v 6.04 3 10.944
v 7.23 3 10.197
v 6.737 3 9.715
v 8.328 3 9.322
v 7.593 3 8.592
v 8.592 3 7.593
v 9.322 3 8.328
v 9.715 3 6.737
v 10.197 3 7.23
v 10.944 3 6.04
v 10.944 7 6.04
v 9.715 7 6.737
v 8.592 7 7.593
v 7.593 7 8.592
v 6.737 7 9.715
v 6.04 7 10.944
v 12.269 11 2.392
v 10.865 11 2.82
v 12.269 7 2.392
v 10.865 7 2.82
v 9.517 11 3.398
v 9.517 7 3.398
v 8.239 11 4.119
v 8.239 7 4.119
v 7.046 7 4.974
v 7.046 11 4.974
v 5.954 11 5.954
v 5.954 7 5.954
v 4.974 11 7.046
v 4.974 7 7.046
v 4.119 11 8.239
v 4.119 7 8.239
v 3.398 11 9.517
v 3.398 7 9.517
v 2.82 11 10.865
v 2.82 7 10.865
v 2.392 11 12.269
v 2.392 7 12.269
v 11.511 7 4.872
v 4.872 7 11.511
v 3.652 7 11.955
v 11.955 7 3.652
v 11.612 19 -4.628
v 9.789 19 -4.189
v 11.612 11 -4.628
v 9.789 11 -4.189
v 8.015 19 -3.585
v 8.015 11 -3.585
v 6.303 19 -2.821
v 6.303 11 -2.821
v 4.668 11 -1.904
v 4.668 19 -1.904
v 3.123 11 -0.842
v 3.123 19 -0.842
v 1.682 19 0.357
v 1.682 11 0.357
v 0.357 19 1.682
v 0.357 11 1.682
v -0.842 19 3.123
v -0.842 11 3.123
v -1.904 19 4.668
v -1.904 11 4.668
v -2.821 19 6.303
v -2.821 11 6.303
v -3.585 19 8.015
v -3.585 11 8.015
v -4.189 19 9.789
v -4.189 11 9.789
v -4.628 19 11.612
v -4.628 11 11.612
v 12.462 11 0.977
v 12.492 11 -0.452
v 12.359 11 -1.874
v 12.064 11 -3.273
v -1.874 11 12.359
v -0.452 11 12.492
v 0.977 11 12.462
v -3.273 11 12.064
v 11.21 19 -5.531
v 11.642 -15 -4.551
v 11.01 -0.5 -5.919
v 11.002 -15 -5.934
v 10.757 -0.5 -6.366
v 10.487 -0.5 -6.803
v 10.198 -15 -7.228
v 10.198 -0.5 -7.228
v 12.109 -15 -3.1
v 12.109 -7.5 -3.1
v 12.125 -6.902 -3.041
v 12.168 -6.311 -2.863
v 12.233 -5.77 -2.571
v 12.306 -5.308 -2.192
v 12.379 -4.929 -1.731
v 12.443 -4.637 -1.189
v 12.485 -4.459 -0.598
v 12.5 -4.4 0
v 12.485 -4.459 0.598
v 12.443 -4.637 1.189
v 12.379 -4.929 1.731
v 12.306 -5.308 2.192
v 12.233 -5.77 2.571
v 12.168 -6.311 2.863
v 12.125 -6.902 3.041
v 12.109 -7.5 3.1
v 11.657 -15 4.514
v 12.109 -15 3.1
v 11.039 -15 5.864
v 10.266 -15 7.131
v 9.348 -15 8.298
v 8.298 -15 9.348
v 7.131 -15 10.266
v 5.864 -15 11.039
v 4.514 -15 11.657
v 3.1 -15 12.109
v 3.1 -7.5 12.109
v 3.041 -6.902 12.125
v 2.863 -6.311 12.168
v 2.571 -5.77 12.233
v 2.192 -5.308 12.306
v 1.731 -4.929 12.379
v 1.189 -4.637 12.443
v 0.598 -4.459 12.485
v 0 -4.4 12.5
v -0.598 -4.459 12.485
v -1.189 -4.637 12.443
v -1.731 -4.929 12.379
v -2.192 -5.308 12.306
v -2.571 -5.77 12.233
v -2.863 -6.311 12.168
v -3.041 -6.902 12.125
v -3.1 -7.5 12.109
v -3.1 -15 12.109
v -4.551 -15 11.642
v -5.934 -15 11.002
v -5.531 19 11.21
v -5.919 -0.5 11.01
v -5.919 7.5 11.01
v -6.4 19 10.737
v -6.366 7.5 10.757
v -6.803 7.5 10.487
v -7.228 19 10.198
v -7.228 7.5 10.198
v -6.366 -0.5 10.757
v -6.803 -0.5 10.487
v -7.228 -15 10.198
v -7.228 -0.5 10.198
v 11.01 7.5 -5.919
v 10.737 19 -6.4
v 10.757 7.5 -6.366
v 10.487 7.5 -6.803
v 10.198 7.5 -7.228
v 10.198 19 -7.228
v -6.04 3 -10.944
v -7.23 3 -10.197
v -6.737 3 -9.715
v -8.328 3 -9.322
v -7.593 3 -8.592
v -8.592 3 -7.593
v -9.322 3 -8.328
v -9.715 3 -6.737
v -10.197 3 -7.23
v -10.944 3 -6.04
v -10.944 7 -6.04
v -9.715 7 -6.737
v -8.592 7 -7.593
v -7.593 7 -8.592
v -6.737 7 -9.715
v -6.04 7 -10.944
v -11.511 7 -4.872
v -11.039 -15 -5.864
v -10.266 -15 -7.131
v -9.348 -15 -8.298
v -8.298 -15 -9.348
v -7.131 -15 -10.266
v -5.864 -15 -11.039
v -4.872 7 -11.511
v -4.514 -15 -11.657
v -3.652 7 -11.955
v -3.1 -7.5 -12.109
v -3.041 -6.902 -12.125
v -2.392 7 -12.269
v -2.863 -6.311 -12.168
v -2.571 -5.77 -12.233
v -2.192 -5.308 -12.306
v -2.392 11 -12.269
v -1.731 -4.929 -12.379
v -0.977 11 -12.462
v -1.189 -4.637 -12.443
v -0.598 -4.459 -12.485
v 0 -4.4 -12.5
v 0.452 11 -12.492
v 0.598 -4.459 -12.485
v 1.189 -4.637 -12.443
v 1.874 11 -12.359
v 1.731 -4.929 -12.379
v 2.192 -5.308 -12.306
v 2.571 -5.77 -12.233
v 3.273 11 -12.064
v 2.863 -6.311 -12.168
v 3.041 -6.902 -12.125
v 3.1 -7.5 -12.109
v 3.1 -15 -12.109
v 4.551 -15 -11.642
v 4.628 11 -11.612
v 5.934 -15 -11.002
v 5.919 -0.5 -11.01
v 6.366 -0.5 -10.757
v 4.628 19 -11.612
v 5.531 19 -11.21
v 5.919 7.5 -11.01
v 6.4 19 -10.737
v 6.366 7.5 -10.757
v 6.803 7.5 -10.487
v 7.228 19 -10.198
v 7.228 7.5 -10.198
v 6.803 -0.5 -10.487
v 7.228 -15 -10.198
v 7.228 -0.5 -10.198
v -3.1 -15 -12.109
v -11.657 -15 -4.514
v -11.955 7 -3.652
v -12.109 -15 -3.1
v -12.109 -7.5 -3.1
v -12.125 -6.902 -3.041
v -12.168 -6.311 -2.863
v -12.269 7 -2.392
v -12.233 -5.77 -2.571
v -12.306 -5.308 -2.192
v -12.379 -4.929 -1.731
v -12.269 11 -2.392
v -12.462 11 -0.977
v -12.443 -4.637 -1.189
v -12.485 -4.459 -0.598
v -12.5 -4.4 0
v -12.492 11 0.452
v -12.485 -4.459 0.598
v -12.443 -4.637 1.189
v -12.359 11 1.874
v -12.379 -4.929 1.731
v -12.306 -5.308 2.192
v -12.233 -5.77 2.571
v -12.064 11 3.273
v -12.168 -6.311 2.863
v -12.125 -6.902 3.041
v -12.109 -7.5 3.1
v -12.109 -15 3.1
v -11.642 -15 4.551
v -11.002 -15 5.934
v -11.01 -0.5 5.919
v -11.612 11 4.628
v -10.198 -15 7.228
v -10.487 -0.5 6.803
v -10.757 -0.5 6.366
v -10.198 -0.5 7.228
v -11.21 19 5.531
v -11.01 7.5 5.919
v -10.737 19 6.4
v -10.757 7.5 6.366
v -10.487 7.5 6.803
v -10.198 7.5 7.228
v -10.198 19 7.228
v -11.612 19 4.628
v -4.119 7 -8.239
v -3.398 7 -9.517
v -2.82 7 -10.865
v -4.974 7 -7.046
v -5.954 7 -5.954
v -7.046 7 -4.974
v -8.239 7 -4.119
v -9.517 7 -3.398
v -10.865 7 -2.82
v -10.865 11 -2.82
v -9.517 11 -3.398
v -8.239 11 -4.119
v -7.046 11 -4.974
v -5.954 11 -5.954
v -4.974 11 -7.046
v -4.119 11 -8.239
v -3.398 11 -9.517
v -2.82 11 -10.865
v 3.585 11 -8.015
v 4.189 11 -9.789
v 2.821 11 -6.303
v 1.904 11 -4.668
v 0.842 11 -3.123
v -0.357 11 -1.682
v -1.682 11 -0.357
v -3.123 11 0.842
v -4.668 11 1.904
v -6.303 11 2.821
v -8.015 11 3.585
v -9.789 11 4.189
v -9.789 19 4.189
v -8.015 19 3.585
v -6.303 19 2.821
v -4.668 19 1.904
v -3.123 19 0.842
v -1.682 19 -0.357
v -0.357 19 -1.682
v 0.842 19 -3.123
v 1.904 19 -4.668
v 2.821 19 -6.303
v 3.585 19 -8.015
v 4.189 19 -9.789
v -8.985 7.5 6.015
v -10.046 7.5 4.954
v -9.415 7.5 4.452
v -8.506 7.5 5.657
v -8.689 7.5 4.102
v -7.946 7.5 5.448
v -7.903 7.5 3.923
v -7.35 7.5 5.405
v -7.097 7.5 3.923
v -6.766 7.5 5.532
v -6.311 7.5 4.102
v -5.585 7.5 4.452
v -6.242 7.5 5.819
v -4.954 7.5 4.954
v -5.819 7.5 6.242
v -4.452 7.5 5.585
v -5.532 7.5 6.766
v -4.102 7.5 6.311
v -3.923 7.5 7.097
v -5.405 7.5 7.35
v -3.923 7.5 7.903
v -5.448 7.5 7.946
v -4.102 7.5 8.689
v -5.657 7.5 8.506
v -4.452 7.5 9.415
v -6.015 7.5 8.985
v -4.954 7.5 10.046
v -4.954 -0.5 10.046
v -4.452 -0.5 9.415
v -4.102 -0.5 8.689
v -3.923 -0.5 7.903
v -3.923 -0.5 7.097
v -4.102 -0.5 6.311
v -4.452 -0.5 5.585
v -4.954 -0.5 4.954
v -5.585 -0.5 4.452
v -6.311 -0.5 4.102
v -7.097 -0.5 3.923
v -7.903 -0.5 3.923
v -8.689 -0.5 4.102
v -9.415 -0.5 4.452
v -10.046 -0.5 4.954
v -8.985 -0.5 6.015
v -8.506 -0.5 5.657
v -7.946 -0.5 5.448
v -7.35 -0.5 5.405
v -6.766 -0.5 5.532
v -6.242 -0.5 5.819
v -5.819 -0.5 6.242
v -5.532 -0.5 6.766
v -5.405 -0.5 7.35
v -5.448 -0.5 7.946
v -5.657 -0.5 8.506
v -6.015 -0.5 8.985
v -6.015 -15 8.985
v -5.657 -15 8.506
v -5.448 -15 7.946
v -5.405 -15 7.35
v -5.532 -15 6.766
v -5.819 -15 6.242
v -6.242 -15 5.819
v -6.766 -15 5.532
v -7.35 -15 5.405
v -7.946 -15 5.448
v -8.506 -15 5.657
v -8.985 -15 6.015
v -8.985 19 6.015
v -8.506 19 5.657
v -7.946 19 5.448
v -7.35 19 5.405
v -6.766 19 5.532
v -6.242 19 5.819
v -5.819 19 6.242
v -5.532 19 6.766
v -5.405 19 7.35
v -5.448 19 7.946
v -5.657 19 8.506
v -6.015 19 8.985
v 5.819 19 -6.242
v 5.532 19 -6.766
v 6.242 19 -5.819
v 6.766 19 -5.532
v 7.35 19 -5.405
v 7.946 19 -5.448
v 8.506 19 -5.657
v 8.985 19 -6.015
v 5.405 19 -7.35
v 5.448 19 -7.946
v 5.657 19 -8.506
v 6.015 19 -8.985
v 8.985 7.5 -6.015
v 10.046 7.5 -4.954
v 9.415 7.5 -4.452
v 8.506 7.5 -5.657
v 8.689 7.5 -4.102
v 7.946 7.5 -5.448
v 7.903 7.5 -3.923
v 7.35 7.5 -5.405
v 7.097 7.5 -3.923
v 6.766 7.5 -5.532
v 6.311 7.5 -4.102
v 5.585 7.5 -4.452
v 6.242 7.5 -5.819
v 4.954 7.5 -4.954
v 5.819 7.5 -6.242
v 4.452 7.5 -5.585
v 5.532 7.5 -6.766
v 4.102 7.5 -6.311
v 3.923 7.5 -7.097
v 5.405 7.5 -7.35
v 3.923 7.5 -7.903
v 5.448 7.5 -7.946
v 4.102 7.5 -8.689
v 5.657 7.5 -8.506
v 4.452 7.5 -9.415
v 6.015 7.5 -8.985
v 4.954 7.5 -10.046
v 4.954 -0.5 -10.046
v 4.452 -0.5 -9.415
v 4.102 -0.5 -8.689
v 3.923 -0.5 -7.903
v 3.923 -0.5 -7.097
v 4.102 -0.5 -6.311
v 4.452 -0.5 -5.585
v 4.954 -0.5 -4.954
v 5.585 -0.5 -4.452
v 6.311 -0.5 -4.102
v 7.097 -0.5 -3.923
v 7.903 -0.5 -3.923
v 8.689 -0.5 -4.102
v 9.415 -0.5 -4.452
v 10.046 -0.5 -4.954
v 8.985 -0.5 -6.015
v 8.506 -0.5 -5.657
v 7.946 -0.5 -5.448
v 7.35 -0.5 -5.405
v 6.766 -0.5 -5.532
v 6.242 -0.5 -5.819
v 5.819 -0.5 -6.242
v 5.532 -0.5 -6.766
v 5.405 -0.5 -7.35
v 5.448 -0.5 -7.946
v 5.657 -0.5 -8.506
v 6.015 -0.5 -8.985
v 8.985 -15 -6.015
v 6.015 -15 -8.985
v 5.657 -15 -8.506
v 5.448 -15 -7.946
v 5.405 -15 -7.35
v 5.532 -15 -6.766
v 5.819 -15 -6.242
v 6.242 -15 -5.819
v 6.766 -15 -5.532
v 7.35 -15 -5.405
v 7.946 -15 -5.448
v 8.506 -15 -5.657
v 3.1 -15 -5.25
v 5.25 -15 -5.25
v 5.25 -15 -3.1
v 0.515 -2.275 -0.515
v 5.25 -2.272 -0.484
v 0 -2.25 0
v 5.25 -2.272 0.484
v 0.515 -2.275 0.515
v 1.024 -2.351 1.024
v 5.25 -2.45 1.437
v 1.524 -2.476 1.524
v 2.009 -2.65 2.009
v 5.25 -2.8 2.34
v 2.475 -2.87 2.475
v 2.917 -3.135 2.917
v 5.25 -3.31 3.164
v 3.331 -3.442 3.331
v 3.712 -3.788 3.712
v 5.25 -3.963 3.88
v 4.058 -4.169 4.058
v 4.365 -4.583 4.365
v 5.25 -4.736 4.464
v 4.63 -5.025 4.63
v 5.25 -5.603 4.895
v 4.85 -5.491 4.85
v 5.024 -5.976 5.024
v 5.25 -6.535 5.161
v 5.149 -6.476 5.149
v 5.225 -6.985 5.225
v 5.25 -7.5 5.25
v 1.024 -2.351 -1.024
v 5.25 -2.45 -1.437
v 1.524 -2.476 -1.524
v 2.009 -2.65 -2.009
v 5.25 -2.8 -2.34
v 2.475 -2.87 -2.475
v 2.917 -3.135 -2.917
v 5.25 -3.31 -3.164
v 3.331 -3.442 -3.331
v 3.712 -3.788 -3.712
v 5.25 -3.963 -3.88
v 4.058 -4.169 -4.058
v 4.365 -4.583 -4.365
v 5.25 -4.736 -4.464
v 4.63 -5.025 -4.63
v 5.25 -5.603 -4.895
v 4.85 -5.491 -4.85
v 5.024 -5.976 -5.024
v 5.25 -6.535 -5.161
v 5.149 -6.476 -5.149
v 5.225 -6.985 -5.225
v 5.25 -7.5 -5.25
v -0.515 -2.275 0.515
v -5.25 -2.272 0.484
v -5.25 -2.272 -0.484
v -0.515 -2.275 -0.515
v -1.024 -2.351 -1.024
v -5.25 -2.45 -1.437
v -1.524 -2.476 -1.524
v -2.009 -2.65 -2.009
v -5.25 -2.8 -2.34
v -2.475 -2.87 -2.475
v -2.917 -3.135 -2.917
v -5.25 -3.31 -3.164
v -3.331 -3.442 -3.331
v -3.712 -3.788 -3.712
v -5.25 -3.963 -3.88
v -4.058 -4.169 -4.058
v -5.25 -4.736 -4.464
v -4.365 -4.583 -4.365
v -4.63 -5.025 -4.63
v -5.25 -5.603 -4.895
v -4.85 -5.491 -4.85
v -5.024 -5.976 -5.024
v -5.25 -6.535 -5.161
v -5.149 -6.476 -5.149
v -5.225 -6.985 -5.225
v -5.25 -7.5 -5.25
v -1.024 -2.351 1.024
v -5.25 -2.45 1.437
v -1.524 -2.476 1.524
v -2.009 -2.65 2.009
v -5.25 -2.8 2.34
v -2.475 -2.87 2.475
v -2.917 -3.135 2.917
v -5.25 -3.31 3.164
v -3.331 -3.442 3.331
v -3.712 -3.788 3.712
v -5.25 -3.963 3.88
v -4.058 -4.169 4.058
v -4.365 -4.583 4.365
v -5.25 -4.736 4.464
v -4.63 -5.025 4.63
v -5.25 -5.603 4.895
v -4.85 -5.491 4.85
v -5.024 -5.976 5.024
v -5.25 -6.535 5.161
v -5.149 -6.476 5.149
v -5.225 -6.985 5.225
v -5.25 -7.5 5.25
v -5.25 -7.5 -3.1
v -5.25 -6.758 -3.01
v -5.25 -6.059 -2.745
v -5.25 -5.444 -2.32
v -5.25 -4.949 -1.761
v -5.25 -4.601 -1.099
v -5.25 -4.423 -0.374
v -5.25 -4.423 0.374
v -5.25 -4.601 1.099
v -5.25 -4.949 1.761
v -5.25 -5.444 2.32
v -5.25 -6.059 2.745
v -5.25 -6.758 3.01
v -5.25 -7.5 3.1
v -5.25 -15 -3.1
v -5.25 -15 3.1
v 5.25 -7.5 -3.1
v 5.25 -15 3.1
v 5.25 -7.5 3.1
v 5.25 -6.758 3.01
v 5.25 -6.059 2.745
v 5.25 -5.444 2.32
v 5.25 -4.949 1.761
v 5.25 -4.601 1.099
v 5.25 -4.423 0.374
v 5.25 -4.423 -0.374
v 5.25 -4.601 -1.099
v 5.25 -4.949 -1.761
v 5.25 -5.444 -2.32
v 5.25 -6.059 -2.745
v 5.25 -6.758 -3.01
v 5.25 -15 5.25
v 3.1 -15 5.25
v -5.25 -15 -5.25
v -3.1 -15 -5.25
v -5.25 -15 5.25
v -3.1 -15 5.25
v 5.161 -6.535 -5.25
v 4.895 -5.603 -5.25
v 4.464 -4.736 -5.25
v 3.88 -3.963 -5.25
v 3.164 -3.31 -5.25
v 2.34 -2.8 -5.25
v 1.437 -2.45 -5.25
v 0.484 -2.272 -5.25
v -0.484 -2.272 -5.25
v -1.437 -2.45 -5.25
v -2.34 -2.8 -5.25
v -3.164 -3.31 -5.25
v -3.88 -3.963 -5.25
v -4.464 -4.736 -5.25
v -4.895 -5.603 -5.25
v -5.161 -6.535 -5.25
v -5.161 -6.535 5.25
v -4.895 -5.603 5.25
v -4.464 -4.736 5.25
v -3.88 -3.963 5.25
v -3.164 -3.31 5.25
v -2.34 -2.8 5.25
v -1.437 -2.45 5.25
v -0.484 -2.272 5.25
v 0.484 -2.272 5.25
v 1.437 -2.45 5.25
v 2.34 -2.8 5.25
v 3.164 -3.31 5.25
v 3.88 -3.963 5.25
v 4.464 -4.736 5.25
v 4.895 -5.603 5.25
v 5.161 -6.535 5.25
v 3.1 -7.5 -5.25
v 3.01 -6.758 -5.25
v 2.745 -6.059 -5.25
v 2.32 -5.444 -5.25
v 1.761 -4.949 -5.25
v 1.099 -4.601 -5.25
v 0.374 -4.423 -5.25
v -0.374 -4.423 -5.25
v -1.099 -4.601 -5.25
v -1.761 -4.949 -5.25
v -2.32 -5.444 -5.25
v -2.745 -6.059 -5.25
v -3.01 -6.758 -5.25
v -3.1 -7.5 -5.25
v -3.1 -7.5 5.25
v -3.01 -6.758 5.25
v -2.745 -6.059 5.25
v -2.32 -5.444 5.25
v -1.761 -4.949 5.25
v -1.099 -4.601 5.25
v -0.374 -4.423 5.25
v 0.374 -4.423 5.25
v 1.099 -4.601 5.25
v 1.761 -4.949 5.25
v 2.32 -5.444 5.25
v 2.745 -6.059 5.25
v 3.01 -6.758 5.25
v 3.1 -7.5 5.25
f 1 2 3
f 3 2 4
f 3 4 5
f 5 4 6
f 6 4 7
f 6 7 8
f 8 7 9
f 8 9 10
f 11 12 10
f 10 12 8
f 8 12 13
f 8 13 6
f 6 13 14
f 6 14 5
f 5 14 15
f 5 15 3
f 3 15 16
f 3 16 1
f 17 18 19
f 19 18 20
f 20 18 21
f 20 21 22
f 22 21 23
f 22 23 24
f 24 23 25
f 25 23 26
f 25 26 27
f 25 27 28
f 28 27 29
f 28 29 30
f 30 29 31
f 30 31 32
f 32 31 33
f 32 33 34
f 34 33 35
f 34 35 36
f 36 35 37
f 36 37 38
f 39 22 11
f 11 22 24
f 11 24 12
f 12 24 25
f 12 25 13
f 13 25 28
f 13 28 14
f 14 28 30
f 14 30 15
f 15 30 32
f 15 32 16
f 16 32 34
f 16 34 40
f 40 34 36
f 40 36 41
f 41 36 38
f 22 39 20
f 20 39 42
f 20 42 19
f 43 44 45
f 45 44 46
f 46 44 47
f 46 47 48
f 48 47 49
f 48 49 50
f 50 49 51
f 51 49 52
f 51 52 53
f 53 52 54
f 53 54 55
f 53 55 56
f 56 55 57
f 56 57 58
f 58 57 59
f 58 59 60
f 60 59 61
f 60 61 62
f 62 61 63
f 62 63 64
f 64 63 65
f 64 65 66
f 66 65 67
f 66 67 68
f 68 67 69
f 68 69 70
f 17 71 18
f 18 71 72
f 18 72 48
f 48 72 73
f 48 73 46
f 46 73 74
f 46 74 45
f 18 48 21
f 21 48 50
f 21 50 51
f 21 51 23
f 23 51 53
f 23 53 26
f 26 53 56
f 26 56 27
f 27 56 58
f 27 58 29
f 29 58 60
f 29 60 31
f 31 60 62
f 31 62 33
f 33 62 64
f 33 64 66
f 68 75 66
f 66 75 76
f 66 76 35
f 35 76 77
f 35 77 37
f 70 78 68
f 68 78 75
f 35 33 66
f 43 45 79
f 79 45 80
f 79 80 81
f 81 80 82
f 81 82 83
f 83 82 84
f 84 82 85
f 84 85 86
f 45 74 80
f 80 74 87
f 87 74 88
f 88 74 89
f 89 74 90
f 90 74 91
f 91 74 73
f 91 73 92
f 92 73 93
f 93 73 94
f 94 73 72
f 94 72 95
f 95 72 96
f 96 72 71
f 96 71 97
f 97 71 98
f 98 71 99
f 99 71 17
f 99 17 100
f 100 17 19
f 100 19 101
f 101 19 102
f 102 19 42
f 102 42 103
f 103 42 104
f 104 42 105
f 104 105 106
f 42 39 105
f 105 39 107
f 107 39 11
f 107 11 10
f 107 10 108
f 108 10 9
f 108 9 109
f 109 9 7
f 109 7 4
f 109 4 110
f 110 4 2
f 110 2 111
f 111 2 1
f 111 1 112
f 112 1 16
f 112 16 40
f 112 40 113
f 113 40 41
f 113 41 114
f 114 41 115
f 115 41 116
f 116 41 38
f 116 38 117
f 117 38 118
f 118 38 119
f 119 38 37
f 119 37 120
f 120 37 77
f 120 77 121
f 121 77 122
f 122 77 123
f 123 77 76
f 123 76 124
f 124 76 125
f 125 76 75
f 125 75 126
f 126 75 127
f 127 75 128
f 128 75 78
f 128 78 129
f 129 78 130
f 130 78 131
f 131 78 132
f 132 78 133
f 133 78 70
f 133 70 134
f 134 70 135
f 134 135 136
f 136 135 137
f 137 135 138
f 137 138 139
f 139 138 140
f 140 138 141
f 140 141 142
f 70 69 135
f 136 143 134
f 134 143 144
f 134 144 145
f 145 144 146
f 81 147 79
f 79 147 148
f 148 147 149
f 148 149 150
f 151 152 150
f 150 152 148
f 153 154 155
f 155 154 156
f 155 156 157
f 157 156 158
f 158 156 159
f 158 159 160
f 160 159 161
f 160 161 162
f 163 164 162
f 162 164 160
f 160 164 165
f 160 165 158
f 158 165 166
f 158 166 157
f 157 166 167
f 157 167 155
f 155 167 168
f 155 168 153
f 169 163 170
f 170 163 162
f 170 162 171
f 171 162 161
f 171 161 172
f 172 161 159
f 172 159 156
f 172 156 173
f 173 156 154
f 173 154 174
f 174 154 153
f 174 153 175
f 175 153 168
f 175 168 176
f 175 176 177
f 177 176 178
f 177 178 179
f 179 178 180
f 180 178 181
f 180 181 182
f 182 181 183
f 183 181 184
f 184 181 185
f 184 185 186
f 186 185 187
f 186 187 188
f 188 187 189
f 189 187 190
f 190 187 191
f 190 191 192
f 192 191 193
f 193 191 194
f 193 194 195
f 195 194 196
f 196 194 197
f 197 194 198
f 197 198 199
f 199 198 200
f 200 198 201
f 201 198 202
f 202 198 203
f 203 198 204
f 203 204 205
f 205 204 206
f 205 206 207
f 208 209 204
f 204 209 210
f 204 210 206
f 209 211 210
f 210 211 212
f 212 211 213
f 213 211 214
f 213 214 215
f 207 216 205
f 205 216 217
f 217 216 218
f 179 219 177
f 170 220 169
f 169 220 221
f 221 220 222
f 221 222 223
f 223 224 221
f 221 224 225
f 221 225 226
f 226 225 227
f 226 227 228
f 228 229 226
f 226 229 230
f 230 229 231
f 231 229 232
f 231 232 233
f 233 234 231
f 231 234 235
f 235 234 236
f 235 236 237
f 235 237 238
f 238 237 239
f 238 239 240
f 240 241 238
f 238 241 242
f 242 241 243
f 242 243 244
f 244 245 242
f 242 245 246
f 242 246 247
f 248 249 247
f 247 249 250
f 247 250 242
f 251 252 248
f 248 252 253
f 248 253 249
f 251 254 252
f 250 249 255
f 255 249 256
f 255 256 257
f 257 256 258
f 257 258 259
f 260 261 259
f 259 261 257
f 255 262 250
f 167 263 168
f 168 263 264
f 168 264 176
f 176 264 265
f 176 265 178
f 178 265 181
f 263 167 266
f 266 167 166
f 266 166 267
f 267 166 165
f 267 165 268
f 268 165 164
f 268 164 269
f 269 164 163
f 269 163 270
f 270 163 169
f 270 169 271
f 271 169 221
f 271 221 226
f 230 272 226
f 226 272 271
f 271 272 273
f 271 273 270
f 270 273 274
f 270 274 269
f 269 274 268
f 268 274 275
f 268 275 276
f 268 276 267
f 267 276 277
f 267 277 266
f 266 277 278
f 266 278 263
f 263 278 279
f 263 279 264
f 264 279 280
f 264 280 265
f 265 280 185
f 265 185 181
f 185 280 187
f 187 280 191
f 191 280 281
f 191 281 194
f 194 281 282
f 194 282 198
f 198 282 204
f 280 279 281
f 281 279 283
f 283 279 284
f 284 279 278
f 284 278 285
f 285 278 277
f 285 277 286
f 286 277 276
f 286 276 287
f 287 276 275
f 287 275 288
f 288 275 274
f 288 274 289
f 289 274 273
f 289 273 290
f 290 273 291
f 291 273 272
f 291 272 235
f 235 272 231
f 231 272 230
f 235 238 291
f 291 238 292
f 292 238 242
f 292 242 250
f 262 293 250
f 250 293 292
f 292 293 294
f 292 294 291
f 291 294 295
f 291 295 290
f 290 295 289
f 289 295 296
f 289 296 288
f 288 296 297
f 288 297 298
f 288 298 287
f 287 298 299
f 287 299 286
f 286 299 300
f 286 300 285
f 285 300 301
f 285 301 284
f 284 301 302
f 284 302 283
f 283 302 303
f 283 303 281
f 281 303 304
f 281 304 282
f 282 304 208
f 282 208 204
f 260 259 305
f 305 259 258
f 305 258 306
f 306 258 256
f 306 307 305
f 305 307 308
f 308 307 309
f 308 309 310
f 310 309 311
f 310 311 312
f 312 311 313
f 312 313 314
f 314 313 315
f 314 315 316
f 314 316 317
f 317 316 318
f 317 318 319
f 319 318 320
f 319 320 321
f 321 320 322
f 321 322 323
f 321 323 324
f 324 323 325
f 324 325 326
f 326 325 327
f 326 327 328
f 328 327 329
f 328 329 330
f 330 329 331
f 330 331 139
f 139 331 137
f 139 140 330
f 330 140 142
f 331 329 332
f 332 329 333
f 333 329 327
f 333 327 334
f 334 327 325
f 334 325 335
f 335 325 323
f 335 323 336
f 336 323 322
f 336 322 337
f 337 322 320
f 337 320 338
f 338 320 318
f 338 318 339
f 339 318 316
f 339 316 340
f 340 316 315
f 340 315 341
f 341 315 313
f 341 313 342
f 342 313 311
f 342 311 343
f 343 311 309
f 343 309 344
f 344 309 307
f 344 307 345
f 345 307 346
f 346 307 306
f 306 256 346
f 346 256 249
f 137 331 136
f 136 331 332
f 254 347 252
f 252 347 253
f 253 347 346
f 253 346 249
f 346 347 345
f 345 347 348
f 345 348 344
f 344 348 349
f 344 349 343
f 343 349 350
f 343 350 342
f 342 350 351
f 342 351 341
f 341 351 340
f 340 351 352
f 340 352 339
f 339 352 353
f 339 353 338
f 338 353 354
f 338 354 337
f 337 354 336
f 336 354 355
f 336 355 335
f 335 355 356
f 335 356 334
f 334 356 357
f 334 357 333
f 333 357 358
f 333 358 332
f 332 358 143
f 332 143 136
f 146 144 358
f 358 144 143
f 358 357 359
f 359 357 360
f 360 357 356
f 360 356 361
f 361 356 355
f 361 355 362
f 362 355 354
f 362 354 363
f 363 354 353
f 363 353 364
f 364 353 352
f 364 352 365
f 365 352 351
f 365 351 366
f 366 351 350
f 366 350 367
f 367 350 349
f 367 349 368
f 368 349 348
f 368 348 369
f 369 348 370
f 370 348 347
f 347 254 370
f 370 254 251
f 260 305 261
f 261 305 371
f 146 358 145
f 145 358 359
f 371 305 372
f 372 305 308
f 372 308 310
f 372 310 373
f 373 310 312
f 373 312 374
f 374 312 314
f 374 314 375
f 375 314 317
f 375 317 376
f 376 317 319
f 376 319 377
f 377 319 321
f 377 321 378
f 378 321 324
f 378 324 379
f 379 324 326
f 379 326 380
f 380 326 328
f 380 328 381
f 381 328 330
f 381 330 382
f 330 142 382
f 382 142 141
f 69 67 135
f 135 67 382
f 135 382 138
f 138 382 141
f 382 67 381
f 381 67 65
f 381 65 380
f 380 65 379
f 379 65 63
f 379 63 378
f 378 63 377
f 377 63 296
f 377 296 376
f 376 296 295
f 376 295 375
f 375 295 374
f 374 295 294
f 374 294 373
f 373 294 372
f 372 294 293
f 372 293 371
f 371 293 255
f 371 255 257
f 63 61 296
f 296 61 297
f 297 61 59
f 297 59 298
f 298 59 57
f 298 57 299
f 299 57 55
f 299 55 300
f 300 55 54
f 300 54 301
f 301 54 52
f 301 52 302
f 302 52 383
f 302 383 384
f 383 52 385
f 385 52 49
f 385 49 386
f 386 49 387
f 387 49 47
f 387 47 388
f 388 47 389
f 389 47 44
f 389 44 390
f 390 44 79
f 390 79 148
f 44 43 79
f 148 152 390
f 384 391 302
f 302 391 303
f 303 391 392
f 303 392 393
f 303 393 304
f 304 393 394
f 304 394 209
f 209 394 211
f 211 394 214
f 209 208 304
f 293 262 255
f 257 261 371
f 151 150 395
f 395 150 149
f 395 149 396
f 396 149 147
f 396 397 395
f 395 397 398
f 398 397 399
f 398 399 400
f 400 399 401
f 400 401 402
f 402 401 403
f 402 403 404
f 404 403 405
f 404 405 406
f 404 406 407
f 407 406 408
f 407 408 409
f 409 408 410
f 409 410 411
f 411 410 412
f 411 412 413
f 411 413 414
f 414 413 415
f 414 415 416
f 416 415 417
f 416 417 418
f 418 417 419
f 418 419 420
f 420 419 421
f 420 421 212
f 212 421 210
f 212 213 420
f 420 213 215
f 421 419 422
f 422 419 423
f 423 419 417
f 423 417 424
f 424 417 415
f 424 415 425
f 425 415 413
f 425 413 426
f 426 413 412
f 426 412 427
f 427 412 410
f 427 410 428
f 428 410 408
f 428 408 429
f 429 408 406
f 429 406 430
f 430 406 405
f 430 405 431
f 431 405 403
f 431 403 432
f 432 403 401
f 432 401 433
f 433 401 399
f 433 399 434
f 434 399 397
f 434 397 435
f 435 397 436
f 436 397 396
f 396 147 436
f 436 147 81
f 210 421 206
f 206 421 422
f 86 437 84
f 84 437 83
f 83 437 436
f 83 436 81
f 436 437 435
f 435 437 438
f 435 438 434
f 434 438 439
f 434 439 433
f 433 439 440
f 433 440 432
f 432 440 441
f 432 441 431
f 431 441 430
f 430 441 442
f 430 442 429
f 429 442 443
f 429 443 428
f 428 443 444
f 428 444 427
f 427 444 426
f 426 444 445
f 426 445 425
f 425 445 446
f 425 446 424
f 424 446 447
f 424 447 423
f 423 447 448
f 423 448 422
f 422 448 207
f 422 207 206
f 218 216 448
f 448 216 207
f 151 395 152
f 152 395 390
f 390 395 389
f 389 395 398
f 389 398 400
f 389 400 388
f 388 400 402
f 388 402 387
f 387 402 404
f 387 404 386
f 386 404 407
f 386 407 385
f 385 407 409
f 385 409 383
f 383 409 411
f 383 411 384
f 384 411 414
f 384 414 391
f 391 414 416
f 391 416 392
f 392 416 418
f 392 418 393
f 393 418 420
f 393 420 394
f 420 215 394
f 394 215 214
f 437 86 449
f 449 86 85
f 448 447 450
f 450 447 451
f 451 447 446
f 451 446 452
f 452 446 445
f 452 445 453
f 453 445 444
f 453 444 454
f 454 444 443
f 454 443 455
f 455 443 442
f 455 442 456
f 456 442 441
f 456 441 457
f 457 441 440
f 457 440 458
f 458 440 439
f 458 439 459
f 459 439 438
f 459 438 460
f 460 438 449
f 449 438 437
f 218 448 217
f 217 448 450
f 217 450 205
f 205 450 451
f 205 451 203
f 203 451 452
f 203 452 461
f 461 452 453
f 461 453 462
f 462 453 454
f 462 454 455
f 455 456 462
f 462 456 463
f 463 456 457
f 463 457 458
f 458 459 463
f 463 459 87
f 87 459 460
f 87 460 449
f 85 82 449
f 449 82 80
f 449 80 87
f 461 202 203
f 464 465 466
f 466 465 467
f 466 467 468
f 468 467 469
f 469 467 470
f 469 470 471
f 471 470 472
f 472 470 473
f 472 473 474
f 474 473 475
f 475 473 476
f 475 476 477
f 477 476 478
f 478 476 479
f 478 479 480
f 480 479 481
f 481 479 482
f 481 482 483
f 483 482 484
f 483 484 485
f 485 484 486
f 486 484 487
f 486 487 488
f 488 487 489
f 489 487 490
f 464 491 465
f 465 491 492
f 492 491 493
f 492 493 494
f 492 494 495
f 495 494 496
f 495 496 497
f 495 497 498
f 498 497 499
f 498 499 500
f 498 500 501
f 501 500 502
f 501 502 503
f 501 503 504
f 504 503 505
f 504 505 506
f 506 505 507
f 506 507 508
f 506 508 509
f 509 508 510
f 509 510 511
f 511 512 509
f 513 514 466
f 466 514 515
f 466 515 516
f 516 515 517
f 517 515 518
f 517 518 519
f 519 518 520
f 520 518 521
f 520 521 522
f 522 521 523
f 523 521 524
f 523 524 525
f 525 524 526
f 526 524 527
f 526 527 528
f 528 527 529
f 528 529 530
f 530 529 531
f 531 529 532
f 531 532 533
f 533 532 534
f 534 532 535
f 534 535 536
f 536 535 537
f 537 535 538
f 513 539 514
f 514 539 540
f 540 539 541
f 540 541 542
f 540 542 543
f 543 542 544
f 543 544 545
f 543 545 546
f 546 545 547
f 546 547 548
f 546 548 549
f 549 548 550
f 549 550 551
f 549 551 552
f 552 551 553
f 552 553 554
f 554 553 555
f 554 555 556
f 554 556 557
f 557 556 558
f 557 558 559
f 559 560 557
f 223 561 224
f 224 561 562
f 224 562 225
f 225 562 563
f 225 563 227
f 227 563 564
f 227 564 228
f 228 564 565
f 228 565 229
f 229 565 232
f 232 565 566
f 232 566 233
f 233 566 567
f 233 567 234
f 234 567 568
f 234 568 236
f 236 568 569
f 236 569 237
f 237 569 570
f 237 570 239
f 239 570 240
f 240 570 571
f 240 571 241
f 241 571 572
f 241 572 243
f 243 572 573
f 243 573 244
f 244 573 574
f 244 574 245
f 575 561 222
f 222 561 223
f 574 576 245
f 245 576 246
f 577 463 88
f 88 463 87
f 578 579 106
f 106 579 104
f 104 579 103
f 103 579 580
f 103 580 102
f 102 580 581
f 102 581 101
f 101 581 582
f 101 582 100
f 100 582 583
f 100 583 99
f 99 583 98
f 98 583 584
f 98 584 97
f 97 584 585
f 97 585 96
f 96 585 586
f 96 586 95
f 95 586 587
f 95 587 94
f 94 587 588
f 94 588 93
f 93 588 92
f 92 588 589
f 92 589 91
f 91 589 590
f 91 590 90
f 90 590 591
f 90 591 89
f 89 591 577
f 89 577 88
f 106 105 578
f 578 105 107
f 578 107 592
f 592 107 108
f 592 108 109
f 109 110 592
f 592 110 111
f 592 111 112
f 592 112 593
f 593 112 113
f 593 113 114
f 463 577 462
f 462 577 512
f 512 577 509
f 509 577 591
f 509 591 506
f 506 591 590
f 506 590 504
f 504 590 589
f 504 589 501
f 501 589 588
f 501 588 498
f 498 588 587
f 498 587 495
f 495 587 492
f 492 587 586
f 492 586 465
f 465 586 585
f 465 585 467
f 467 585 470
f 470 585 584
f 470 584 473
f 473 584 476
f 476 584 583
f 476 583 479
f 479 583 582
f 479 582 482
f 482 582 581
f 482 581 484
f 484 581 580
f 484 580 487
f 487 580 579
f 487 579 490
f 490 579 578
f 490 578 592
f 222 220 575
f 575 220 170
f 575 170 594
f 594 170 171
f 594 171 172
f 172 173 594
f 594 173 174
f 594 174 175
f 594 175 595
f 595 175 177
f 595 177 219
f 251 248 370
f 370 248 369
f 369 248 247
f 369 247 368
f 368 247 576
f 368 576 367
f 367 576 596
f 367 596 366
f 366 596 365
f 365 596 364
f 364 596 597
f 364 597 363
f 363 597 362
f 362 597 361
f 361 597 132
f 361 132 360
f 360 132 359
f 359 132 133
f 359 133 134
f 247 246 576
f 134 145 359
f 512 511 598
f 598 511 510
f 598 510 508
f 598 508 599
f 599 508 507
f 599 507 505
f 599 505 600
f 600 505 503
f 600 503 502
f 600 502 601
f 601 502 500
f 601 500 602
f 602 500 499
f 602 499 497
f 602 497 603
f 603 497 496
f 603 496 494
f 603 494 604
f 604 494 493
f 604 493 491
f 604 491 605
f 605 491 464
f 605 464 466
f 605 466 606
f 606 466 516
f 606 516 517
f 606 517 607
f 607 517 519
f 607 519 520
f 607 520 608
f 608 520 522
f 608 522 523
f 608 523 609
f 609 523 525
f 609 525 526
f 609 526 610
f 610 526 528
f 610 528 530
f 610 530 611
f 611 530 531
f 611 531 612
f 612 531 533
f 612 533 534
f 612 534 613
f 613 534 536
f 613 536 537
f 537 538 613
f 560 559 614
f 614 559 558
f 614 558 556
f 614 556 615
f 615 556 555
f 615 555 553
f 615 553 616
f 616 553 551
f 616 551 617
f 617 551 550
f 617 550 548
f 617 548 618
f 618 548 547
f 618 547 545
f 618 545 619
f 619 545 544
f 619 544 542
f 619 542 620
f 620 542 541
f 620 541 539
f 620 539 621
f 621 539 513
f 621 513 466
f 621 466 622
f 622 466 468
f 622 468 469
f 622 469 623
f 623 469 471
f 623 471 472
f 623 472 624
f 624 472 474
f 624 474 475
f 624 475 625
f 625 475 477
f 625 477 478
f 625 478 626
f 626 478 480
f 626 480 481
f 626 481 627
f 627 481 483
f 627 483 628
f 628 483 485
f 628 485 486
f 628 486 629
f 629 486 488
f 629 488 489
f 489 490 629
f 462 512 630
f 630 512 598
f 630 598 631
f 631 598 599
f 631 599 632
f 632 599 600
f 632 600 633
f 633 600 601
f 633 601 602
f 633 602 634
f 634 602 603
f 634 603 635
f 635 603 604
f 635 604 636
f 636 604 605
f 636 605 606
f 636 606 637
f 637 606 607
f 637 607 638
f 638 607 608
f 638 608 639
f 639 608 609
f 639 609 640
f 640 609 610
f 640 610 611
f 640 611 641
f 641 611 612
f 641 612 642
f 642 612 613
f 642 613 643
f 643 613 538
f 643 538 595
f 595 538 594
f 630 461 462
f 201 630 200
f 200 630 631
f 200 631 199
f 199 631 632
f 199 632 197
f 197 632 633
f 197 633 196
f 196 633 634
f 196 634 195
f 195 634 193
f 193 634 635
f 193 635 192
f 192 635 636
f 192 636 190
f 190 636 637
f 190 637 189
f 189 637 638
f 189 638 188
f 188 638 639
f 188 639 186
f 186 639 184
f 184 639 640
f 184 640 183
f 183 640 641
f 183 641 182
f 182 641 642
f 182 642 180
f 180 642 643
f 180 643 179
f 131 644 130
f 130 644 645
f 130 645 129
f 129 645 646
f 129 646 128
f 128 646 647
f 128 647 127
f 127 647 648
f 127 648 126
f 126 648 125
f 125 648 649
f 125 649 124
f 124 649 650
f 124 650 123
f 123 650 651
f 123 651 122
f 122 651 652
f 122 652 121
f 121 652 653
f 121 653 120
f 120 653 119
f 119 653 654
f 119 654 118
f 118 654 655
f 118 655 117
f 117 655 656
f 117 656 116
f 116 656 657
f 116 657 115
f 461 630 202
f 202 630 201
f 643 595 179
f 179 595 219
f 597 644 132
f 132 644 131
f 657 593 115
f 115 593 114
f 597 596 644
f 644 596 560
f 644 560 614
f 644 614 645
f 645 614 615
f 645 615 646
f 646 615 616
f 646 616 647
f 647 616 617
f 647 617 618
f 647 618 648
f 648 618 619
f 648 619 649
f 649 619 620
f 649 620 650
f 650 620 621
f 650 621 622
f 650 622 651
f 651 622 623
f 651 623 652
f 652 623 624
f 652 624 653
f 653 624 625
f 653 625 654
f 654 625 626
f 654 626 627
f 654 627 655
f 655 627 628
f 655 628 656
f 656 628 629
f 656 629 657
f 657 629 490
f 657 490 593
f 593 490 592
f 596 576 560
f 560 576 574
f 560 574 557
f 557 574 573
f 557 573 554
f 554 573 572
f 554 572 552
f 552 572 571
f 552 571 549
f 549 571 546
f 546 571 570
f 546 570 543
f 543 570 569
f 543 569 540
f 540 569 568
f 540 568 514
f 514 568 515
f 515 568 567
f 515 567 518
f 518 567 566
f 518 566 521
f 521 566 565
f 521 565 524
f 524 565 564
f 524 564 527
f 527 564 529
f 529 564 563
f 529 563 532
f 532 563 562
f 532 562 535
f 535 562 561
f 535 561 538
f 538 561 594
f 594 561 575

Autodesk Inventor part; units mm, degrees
ref_plane "YZ Plane" through (0, 0, 0) normal (1, 0, 0) x (0, 1, 0)
ref_plane "XZ Plane" through (0, 0, 0) normal (0, 1, 0) x (-1, 0, 0)
sketch "Sketch1" plane through (0, 0, 0) normal (0, 1, 0) x (-1, 0, 0)
  circle A0 centre (0, 0) radius 12.5
  dimension "d0" = 25
extrude "Extrusion1" add sketch "Sketch1" along normal blind 19 and the other way blind 15
sketch "Sketch2" plane through (0, 0, 0) normal (0, 0, 1) x (1, 0, 0)
  line L0 (-5.25, -15) -> (-5.25, -7.5)
  arc A0 (5.25, -7.5) -> (-5.25, -7.5) centre (0, -7.5) ccw
  line L1 (5.25, -7.5) -> (5.25, -15)
  line L2 (5.25, -15) -> (-5.25, -15)
  line L3 (-3.1, -15) -> (-3.1, -7.5)
  arc A1 (3.1, -7.5) -> (-3.1, -7.5) centre (0, -7.5) ccw
  line L4 (3.1, -7.5) -> (3.1, -15)
  line L5 (0, 0) -> (0, -15) construction
  line L6 (-12.5, -15) -> (12.5, -15) projected
  point P0 (0, -7.5)
  dimension "d5" = 10.5
  dimension "d6" = 6.2
extrude "Extrusion2" cut sketch "Sketch2" along normal mid plane 10.5
extrude "Extrusion3" cut sketch "Sketch2" against normal through all both and the other way through all contours L3 A1 L4 L2
pattern_circular "Circular Pattern1" count 2 over 90 about axis through (0, -10, 0) along (0, 1, 0) of "Extrusion2", "Extrusion3"
ref_plane "Work Plane1" through (0, 7.5, 0) normal (0, 1, 0) x (1, 0, 0)
sketch "Sketch3" plane through (0, 7.5, 0) normal (0, 1, 0) x (1, 0, 0)
  line L0 (7.2283, 10.1981) -> (6.0151, 8.9849)
  arc A0 (6.0151, 8.9849) -> (8.9849, 6.0151) centre (7.5, 7.5) ccw
  line L1 (8.9849, 6.0151) -> (10.1981, 7.2283)
  arc A1 (12.1095, 3.1) -> (3.1, 12.1095) centre (0, 0) ccw projected
  line L2 (0, 0) -> (7.5, 7.5) construction
  line L3 (-17.671, 0) -> (18.5127, 0) projected
  line L4 (5.9188, 11.0099) -> (4.9544, 10.0456)
  arc A2 (4.9544, 10.0456) -> (10.0456, 4.9544) centre (7.5, 7.5) ccw
  line L5 (10.0456, 4.9544) -> (11.0099, 5.9188)
  dimension "d15" = 4.2
  dimension "d16" = 7.5
  dimension "d17" = 45
  dimension "d18" = 7.2
extrude "Extrusion4" cut sketch "Sketch3" along normal through all both and the other way through all contours A1 L1 A0 L0
extrude "Extrusion5" cut sketch "Sketch3" against normal blind 8
pattern_circular "Circular Pattern2" count 2 over 360 about axis through (0, -10, 0) along (0, 1, 0) of "Extrusion4", "Extrusion5"
sketch "Sketch4" plane through (0, 19, 0) normal (0, 1, 0) x (1, 0, 0)
  circle A0 centre (-15.5, 15.5) radius 20.5
  line L0 (-15.5, 15.5) -> (15.5, 15.5) construction
  line L1 (15.5, 15.5) -> (15.5, -15.5) construction
  line L2 (15.5, -15.5) -> (-15.5, -15.5) construction
  line L3 (-15.5, -15.5) -> (-15.5, 15.5) construction
  circle A1 centre (-15.5, 15.5) radius 13.5
  circle A2 centre (-15.5, 15.5) radius 10.5
  point P0 (0, 0)
  point P1 (15.5, 0)
  point P2 (0, 15.5)
  dimension "d27" = 41
  dimension "d28" = 31
  dimension "d31" = 27
  dimension "d32" = 21
extrude "Extrusion6" cut sketch "Sketch4" against normal blind 8 contours A0 | A1 | A2
extrude "Extrusion7" cut sketch "Sketch4" against normal blind 12 contours A1 | A2
extrude "Extrusion8" cut sketch "Sketch4" against normal blind 16 contours A2
pattern_circular "Circular Pattern3" count 2 over 360 about axis through (0, -10, 0) along (0, 1, 0) of "Extrusion7", "Extrusion6", "Extrusion8"
properties part number "mount-stem"
